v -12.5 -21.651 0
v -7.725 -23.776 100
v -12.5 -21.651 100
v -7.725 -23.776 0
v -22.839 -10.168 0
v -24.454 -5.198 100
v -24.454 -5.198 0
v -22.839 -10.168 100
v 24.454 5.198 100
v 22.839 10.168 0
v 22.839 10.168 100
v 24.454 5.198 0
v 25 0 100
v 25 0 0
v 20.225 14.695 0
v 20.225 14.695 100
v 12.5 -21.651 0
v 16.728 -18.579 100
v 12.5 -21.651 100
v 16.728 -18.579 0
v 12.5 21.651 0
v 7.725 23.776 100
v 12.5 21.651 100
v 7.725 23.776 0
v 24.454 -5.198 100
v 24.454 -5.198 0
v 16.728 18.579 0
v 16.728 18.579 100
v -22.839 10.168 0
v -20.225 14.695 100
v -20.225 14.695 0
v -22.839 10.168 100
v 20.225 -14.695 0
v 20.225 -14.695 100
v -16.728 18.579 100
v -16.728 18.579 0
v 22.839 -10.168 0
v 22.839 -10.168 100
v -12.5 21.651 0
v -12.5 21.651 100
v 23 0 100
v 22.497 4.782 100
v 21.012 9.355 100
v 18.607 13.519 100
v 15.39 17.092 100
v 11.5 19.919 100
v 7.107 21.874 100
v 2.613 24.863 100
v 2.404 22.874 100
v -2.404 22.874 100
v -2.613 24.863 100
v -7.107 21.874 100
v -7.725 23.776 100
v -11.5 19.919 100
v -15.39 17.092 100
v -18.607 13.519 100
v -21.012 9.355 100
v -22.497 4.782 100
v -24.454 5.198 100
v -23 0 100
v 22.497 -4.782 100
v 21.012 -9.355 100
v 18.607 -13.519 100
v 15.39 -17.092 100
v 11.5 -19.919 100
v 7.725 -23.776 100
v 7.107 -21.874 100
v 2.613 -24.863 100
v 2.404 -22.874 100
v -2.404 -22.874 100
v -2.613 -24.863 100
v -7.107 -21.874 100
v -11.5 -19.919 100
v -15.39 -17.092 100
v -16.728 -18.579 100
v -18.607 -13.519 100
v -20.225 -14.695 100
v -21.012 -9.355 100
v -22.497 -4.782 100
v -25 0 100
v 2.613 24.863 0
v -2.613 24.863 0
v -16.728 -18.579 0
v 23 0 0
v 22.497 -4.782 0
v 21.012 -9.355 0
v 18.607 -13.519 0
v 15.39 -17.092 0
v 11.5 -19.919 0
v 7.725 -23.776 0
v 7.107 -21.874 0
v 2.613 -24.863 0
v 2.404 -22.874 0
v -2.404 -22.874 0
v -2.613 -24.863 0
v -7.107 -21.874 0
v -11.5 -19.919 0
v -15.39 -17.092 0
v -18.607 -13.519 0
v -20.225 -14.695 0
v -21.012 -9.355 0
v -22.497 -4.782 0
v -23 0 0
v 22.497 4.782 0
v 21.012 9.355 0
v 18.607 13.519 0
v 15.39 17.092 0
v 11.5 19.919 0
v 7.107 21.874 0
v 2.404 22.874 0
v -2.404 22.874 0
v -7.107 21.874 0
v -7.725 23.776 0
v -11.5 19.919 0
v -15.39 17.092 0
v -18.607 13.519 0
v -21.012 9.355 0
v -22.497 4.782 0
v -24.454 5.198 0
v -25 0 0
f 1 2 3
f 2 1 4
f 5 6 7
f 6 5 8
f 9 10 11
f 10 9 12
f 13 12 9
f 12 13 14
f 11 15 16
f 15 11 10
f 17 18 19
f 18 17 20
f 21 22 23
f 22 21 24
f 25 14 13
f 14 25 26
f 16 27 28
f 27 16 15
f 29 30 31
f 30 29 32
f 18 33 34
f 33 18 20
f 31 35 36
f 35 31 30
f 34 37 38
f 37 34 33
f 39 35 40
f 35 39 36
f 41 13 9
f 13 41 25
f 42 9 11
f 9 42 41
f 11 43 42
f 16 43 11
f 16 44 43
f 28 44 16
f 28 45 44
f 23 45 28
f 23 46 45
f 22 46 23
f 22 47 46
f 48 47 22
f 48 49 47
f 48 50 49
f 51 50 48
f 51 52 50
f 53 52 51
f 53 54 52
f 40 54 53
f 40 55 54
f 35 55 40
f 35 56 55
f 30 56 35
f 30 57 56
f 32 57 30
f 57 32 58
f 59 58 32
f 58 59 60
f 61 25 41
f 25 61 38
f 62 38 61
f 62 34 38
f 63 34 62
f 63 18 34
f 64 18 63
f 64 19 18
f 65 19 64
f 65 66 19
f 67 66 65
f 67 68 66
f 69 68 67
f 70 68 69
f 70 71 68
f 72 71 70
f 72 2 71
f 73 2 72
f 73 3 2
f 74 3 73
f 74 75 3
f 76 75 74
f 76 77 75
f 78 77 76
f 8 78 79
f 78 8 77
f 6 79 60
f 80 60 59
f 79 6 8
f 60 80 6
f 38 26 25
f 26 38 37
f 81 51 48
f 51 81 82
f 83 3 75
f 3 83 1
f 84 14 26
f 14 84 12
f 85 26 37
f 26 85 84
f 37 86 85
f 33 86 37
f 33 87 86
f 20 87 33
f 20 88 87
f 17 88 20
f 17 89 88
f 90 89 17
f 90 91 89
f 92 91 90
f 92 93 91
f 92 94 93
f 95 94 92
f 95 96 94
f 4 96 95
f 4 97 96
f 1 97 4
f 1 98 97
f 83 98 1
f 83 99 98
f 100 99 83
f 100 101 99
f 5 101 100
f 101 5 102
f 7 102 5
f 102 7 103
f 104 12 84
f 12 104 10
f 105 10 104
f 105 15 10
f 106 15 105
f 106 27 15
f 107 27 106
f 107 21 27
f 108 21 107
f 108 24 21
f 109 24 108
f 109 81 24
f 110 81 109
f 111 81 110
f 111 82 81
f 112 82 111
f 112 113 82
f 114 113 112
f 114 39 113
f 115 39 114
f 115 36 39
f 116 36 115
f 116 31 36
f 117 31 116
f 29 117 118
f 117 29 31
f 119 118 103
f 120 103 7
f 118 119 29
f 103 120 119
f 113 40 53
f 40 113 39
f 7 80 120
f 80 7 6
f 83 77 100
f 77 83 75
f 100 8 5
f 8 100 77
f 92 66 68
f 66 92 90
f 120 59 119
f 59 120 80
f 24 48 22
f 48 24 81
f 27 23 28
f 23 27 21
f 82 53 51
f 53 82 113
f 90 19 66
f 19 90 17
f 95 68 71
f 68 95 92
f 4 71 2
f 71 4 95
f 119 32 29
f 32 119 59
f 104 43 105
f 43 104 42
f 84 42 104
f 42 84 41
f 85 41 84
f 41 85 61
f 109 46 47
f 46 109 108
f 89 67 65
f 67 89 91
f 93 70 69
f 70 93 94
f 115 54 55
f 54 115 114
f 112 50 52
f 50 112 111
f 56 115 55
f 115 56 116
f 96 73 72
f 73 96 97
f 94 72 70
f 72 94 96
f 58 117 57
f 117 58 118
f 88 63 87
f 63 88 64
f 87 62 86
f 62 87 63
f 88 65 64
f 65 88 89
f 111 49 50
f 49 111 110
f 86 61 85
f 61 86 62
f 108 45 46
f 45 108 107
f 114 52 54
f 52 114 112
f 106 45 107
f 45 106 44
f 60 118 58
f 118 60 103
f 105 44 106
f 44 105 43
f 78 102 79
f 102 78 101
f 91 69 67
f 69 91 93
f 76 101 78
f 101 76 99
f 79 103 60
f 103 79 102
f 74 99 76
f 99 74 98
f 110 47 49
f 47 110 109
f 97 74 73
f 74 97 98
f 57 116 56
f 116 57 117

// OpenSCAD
module cylinder_part() {
    // Parameters
    D = 50;                    // Outer Diameter in mm
    H = 100;                   // Height in mm
    wall_thickness = 2;        // Wall thickness in mm, 0 for solid
    
    // Derived values
    inner_diameter = D - 2 * wall_thickness;
    
    // Check if hollow or solid
    if (wall_thickness > 0 && inner_diameter > 0) {
        difference() {
            cylinder(h = H, d = D, center = false);
            translate([0,0,0])  // Inner cylinder starts at bottom as well
                cylinder(h = H, d = inner_diameter, center = false);
        }
    } else {
        cylinder(h = H, d = D, center = false);
    }
}

cylinder_part();
